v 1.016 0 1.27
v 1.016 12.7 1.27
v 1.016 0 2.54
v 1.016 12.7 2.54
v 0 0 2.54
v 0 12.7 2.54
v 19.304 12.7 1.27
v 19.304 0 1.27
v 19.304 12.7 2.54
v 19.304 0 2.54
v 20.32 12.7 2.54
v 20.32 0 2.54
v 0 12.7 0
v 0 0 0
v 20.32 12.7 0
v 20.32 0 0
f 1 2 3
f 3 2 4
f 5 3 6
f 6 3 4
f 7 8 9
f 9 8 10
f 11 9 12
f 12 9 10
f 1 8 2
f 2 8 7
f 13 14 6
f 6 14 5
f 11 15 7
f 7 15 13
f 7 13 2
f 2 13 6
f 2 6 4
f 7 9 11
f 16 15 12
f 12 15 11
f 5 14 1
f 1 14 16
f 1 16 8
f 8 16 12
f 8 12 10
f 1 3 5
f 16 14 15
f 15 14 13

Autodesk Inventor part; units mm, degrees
ref_plane "YZ Plane" through (0, 0, 0) normal (1, 0, 0) x (0, 1, 0)
ref_plane "XZ Plane" through (0, 0, 0) normal (0, 1, 0) x (-1, 0, 0)
ref_plane "XY Plane" through (0, 0, 0) normal (0, 0, 1) x (1, 0, 0)
sketch "Sketch1" plane through (0, 0, 0) normal (0, 0, 1) x (1, 0, 0)
  line L0 (0, 0) -> (20.32, 0)
  line L1 (20.32, 0) -> (20.32, 12.7)
  line L2 (20.32, 12.7) -> (0, 12.7)
  line L3 (0, 12.7) -> (0, 0)
  dimension "d0" = 20.32
  dimension "d1" = 12.7
extrude "Extrusion1" add sketch "Sketch1" along normal blind 1.27
sketch "Sketch2" plane through (0, 0, 1.27) normal (0, 0, 1) x (1, 0, 0)
  line L0 (20.32, 12.7) -> (0, 12.7) projected
  line L1 (0, 0) -> (1.016, 0)
  line L2 (1.016, 0) -> (1.016, 12.7)
  line L3 (1.016, 12.7) -> (0, 12.7)
  line L4 (0, 12.7) -> (0, 0)
  line L5 (20.32, 12.7) -> (19.304, 12.7)
  line L6 (19.304, 12.7) -> (19.304, 0)
  line L7 (19.304, 0) -> (20.32, 0)
  line L8 (20.32, 0) -> (20.32, 12.7)
  dimension "d4" = 1.016
  dimension "d5" = 1.016
extrude "Extrusion2" add sketch "Sketch2" along normal blind 1.27
properties part number "USBBreakoutCover"
